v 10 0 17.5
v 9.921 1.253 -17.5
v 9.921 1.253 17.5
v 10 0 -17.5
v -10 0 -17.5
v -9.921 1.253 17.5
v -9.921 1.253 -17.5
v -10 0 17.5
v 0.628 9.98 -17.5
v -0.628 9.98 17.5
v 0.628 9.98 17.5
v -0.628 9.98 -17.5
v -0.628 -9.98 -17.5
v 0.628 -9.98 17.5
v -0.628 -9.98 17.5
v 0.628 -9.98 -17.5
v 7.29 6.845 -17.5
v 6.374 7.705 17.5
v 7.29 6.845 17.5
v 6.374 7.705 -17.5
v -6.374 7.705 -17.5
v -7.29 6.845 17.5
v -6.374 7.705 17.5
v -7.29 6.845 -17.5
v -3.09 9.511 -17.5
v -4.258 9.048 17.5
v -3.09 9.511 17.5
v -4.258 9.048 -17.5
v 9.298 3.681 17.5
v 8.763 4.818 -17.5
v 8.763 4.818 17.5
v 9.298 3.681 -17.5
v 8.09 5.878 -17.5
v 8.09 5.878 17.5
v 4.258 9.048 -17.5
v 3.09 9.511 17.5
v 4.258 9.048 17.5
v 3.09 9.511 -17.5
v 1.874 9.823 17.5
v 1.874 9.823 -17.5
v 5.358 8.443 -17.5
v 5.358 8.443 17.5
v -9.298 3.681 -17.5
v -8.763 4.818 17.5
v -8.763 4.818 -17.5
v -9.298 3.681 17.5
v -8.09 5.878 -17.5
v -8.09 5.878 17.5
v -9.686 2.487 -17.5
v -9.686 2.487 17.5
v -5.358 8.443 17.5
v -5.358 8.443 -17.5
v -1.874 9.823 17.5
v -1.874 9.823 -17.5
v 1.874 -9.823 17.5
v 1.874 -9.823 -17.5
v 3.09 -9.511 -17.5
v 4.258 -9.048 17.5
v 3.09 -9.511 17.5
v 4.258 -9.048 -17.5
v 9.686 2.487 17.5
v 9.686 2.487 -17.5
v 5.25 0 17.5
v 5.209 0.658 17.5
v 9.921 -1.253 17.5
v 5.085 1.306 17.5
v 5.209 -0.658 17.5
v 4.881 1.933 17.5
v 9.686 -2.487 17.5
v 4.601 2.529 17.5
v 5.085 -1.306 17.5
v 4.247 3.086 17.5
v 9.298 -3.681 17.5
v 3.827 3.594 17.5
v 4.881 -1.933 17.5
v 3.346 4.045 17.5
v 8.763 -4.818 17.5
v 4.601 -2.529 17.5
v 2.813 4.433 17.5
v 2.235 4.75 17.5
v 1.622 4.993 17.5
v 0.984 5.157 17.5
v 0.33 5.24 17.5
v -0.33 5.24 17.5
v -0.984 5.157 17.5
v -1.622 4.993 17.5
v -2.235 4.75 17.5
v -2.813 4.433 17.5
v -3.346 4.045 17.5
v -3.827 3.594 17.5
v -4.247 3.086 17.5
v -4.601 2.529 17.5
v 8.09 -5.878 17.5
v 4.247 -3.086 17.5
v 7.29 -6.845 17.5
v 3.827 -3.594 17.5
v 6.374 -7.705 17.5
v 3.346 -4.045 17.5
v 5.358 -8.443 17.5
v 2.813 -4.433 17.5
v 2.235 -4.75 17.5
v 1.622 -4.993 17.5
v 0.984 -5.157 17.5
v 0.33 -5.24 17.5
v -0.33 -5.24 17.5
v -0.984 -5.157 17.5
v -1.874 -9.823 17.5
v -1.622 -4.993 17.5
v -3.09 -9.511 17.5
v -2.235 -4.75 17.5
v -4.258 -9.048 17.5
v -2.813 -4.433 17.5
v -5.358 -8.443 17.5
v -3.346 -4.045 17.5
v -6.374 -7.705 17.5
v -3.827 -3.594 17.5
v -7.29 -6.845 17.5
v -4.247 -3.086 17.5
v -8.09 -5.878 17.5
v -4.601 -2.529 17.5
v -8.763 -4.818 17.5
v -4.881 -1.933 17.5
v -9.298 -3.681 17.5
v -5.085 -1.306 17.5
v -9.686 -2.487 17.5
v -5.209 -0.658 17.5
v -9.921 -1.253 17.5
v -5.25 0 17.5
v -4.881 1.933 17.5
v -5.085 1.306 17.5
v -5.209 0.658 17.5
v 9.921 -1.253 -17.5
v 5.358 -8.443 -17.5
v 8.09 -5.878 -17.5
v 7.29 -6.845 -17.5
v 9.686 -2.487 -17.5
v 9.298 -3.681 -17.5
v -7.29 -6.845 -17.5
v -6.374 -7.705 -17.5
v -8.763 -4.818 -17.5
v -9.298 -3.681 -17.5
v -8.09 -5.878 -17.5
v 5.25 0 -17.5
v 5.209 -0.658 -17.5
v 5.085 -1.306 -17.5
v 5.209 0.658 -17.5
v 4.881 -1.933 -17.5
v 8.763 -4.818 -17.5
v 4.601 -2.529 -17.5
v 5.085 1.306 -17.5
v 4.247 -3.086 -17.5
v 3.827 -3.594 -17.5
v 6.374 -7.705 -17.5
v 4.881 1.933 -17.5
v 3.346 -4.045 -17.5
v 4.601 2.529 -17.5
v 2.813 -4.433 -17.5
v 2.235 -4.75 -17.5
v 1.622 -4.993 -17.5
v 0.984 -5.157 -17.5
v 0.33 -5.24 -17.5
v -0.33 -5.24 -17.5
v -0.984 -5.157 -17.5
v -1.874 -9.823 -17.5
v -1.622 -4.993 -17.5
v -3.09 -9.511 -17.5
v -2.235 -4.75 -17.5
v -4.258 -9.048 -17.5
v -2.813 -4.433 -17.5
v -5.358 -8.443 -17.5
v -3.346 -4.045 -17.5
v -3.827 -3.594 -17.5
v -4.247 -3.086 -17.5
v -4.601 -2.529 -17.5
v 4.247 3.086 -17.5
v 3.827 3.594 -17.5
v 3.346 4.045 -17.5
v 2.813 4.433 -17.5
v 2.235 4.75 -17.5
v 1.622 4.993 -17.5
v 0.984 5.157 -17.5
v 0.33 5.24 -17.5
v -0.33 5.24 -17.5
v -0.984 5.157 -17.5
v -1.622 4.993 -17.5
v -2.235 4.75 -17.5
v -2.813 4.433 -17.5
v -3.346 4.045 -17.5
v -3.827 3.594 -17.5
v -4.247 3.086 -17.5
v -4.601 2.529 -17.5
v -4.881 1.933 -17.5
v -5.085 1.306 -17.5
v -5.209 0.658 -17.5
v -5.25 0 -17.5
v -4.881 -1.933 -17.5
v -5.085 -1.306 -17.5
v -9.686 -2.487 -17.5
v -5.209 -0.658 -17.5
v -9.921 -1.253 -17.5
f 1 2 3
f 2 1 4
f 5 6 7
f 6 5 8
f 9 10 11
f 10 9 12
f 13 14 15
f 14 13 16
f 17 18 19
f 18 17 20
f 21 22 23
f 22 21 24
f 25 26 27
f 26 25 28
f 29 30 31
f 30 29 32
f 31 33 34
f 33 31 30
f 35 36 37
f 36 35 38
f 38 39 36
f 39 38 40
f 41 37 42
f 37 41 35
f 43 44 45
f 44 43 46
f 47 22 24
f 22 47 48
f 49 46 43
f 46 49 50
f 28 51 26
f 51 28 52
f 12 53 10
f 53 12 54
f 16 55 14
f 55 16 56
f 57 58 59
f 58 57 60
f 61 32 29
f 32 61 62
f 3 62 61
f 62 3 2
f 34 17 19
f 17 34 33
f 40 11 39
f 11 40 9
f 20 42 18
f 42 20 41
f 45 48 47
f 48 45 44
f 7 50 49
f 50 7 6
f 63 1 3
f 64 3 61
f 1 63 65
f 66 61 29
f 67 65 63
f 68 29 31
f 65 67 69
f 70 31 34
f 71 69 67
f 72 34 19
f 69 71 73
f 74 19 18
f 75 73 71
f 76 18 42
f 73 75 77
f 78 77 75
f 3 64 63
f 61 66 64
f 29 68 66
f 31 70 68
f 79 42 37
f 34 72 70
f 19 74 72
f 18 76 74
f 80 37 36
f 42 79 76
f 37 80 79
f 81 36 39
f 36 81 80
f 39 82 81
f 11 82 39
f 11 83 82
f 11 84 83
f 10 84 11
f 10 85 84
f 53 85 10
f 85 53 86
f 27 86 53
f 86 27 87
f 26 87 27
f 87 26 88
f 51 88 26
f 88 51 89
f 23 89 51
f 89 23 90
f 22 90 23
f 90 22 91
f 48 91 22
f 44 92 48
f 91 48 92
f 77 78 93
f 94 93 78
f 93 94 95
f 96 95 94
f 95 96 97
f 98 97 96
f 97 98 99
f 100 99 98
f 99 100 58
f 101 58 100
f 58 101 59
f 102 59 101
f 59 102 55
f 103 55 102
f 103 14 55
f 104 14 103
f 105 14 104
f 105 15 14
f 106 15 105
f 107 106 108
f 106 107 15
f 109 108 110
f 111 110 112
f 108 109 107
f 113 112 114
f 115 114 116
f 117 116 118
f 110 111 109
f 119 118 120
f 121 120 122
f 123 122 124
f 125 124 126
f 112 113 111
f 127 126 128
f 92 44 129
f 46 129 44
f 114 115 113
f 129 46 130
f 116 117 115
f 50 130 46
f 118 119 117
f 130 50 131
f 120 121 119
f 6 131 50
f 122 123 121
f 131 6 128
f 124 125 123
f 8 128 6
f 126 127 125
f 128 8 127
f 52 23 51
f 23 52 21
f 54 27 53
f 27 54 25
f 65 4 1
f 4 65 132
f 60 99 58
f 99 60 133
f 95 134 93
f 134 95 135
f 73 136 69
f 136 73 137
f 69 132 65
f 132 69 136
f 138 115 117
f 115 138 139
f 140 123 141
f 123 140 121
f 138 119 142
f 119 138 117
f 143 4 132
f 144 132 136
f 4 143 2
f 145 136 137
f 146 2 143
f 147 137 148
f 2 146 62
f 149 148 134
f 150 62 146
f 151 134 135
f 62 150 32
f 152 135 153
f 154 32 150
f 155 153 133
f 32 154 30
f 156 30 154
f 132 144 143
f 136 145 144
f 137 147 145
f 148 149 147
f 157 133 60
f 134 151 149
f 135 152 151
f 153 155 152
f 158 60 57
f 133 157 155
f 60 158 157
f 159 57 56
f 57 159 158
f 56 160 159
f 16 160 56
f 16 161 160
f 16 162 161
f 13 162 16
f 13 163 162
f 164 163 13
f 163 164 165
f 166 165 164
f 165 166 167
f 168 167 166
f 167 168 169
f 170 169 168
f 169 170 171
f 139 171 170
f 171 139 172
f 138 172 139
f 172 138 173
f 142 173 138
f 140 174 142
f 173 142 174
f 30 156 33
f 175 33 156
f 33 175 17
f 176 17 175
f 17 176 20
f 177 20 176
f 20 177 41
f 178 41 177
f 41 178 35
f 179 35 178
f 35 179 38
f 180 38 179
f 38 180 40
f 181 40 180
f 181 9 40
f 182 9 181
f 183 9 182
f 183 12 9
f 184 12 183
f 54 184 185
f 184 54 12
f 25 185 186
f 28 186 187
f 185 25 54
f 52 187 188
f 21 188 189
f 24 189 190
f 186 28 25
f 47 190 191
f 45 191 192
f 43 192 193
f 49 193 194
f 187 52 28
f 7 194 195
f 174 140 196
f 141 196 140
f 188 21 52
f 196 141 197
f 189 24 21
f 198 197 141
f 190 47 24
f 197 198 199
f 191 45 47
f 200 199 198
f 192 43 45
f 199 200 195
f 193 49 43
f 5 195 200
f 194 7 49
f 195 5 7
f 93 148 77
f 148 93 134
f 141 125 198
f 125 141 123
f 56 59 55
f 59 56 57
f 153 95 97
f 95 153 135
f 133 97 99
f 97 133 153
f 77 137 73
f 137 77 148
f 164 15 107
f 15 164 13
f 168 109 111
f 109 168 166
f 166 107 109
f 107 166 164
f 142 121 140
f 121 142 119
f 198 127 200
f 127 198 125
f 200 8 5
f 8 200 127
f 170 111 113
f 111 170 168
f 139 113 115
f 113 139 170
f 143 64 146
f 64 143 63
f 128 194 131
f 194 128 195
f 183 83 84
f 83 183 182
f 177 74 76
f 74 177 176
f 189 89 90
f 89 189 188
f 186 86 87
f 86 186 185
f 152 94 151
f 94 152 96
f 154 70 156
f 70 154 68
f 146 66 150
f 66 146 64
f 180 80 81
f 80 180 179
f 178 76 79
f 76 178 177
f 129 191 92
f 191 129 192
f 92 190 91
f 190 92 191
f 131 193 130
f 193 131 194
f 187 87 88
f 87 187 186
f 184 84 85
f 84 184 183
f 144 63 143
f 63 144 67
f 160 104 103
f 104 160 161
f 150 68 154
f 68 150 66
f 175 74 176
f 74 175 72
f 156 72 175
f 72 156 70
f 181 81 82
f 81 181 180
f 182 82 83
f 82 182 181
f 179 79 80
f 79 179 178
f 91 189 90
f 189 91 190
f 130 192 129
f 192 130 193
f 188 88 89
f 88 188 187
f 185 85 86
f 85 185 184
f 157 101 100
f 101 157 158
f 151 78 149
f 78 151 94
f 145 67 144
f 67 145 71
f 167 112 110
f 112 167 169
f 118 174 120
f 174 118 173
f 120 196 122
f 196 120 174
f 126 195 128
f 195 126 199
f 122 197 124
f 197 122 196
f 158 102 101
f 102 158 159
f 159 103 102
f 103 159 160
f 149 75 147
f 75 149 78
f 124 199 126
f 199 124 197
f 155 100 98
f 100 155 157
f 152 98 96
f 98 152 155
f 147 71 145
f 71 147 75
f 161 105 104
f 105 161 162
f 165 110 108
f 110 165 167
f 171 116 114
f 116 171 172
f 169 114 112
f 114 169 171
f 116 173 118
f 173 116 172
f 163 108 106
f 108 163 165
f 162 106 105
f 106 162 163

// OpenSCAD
$fn = 50;


difference() {
	union() {
		translate(v = [0, 0, -17.5000000000]) {
			cylinder(h = 35, r = 10.0000000000);
		}
	}
	union() {
		translate(v = [0, 0, -100.0000000000]) {
			cylinder(h = 200, r = 5.2500000000);
		}
	}
}
